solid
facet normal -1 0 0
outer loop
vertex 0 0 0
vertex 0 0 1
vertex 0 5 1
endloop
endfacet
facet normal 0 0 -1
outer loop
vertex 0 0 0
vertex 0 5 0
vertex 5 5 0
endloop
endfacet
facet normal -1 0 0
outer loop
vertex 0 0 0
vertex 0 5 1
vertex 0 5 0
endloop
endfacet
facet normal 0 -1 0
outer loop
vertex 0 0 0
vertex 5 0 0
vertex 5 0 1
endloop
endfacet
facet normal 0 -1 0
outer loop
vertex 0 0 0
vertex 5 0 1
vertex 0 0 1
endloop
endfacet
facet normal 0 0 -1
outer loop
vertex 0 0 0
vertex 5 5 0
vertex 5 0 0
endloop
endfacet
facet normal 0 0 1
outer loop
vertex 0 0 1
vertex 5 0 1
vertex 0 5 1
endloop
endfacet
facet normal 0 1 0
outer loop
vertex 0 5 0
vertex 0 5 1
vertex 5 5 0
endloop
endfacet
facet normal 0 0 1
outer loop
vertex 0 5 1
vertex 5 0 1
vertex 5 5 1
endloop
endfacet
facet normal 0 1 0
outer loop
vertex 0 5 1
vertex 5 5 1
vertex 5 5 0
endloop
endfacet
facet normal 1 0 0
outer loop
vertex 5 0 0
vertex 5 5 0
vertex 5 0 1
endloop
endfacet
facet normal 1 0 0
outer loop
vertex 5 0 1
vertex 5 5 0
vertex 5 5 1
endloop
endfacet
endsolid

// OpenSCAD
/* Warning, this is a very basic generator with a lot of approximation 
input data : [MQFN, 3CX, 5x5x1.0mm, 20, , B, C04-00186B]
generated by com.zoubworld.electronics.cad.model3d.Basic
Date : Sun Feb 15 10:50:48 CET 2026
*/

//body
color("black")
translate([0,0,0])
cube([5.0,5.0,1.0], center=false);
